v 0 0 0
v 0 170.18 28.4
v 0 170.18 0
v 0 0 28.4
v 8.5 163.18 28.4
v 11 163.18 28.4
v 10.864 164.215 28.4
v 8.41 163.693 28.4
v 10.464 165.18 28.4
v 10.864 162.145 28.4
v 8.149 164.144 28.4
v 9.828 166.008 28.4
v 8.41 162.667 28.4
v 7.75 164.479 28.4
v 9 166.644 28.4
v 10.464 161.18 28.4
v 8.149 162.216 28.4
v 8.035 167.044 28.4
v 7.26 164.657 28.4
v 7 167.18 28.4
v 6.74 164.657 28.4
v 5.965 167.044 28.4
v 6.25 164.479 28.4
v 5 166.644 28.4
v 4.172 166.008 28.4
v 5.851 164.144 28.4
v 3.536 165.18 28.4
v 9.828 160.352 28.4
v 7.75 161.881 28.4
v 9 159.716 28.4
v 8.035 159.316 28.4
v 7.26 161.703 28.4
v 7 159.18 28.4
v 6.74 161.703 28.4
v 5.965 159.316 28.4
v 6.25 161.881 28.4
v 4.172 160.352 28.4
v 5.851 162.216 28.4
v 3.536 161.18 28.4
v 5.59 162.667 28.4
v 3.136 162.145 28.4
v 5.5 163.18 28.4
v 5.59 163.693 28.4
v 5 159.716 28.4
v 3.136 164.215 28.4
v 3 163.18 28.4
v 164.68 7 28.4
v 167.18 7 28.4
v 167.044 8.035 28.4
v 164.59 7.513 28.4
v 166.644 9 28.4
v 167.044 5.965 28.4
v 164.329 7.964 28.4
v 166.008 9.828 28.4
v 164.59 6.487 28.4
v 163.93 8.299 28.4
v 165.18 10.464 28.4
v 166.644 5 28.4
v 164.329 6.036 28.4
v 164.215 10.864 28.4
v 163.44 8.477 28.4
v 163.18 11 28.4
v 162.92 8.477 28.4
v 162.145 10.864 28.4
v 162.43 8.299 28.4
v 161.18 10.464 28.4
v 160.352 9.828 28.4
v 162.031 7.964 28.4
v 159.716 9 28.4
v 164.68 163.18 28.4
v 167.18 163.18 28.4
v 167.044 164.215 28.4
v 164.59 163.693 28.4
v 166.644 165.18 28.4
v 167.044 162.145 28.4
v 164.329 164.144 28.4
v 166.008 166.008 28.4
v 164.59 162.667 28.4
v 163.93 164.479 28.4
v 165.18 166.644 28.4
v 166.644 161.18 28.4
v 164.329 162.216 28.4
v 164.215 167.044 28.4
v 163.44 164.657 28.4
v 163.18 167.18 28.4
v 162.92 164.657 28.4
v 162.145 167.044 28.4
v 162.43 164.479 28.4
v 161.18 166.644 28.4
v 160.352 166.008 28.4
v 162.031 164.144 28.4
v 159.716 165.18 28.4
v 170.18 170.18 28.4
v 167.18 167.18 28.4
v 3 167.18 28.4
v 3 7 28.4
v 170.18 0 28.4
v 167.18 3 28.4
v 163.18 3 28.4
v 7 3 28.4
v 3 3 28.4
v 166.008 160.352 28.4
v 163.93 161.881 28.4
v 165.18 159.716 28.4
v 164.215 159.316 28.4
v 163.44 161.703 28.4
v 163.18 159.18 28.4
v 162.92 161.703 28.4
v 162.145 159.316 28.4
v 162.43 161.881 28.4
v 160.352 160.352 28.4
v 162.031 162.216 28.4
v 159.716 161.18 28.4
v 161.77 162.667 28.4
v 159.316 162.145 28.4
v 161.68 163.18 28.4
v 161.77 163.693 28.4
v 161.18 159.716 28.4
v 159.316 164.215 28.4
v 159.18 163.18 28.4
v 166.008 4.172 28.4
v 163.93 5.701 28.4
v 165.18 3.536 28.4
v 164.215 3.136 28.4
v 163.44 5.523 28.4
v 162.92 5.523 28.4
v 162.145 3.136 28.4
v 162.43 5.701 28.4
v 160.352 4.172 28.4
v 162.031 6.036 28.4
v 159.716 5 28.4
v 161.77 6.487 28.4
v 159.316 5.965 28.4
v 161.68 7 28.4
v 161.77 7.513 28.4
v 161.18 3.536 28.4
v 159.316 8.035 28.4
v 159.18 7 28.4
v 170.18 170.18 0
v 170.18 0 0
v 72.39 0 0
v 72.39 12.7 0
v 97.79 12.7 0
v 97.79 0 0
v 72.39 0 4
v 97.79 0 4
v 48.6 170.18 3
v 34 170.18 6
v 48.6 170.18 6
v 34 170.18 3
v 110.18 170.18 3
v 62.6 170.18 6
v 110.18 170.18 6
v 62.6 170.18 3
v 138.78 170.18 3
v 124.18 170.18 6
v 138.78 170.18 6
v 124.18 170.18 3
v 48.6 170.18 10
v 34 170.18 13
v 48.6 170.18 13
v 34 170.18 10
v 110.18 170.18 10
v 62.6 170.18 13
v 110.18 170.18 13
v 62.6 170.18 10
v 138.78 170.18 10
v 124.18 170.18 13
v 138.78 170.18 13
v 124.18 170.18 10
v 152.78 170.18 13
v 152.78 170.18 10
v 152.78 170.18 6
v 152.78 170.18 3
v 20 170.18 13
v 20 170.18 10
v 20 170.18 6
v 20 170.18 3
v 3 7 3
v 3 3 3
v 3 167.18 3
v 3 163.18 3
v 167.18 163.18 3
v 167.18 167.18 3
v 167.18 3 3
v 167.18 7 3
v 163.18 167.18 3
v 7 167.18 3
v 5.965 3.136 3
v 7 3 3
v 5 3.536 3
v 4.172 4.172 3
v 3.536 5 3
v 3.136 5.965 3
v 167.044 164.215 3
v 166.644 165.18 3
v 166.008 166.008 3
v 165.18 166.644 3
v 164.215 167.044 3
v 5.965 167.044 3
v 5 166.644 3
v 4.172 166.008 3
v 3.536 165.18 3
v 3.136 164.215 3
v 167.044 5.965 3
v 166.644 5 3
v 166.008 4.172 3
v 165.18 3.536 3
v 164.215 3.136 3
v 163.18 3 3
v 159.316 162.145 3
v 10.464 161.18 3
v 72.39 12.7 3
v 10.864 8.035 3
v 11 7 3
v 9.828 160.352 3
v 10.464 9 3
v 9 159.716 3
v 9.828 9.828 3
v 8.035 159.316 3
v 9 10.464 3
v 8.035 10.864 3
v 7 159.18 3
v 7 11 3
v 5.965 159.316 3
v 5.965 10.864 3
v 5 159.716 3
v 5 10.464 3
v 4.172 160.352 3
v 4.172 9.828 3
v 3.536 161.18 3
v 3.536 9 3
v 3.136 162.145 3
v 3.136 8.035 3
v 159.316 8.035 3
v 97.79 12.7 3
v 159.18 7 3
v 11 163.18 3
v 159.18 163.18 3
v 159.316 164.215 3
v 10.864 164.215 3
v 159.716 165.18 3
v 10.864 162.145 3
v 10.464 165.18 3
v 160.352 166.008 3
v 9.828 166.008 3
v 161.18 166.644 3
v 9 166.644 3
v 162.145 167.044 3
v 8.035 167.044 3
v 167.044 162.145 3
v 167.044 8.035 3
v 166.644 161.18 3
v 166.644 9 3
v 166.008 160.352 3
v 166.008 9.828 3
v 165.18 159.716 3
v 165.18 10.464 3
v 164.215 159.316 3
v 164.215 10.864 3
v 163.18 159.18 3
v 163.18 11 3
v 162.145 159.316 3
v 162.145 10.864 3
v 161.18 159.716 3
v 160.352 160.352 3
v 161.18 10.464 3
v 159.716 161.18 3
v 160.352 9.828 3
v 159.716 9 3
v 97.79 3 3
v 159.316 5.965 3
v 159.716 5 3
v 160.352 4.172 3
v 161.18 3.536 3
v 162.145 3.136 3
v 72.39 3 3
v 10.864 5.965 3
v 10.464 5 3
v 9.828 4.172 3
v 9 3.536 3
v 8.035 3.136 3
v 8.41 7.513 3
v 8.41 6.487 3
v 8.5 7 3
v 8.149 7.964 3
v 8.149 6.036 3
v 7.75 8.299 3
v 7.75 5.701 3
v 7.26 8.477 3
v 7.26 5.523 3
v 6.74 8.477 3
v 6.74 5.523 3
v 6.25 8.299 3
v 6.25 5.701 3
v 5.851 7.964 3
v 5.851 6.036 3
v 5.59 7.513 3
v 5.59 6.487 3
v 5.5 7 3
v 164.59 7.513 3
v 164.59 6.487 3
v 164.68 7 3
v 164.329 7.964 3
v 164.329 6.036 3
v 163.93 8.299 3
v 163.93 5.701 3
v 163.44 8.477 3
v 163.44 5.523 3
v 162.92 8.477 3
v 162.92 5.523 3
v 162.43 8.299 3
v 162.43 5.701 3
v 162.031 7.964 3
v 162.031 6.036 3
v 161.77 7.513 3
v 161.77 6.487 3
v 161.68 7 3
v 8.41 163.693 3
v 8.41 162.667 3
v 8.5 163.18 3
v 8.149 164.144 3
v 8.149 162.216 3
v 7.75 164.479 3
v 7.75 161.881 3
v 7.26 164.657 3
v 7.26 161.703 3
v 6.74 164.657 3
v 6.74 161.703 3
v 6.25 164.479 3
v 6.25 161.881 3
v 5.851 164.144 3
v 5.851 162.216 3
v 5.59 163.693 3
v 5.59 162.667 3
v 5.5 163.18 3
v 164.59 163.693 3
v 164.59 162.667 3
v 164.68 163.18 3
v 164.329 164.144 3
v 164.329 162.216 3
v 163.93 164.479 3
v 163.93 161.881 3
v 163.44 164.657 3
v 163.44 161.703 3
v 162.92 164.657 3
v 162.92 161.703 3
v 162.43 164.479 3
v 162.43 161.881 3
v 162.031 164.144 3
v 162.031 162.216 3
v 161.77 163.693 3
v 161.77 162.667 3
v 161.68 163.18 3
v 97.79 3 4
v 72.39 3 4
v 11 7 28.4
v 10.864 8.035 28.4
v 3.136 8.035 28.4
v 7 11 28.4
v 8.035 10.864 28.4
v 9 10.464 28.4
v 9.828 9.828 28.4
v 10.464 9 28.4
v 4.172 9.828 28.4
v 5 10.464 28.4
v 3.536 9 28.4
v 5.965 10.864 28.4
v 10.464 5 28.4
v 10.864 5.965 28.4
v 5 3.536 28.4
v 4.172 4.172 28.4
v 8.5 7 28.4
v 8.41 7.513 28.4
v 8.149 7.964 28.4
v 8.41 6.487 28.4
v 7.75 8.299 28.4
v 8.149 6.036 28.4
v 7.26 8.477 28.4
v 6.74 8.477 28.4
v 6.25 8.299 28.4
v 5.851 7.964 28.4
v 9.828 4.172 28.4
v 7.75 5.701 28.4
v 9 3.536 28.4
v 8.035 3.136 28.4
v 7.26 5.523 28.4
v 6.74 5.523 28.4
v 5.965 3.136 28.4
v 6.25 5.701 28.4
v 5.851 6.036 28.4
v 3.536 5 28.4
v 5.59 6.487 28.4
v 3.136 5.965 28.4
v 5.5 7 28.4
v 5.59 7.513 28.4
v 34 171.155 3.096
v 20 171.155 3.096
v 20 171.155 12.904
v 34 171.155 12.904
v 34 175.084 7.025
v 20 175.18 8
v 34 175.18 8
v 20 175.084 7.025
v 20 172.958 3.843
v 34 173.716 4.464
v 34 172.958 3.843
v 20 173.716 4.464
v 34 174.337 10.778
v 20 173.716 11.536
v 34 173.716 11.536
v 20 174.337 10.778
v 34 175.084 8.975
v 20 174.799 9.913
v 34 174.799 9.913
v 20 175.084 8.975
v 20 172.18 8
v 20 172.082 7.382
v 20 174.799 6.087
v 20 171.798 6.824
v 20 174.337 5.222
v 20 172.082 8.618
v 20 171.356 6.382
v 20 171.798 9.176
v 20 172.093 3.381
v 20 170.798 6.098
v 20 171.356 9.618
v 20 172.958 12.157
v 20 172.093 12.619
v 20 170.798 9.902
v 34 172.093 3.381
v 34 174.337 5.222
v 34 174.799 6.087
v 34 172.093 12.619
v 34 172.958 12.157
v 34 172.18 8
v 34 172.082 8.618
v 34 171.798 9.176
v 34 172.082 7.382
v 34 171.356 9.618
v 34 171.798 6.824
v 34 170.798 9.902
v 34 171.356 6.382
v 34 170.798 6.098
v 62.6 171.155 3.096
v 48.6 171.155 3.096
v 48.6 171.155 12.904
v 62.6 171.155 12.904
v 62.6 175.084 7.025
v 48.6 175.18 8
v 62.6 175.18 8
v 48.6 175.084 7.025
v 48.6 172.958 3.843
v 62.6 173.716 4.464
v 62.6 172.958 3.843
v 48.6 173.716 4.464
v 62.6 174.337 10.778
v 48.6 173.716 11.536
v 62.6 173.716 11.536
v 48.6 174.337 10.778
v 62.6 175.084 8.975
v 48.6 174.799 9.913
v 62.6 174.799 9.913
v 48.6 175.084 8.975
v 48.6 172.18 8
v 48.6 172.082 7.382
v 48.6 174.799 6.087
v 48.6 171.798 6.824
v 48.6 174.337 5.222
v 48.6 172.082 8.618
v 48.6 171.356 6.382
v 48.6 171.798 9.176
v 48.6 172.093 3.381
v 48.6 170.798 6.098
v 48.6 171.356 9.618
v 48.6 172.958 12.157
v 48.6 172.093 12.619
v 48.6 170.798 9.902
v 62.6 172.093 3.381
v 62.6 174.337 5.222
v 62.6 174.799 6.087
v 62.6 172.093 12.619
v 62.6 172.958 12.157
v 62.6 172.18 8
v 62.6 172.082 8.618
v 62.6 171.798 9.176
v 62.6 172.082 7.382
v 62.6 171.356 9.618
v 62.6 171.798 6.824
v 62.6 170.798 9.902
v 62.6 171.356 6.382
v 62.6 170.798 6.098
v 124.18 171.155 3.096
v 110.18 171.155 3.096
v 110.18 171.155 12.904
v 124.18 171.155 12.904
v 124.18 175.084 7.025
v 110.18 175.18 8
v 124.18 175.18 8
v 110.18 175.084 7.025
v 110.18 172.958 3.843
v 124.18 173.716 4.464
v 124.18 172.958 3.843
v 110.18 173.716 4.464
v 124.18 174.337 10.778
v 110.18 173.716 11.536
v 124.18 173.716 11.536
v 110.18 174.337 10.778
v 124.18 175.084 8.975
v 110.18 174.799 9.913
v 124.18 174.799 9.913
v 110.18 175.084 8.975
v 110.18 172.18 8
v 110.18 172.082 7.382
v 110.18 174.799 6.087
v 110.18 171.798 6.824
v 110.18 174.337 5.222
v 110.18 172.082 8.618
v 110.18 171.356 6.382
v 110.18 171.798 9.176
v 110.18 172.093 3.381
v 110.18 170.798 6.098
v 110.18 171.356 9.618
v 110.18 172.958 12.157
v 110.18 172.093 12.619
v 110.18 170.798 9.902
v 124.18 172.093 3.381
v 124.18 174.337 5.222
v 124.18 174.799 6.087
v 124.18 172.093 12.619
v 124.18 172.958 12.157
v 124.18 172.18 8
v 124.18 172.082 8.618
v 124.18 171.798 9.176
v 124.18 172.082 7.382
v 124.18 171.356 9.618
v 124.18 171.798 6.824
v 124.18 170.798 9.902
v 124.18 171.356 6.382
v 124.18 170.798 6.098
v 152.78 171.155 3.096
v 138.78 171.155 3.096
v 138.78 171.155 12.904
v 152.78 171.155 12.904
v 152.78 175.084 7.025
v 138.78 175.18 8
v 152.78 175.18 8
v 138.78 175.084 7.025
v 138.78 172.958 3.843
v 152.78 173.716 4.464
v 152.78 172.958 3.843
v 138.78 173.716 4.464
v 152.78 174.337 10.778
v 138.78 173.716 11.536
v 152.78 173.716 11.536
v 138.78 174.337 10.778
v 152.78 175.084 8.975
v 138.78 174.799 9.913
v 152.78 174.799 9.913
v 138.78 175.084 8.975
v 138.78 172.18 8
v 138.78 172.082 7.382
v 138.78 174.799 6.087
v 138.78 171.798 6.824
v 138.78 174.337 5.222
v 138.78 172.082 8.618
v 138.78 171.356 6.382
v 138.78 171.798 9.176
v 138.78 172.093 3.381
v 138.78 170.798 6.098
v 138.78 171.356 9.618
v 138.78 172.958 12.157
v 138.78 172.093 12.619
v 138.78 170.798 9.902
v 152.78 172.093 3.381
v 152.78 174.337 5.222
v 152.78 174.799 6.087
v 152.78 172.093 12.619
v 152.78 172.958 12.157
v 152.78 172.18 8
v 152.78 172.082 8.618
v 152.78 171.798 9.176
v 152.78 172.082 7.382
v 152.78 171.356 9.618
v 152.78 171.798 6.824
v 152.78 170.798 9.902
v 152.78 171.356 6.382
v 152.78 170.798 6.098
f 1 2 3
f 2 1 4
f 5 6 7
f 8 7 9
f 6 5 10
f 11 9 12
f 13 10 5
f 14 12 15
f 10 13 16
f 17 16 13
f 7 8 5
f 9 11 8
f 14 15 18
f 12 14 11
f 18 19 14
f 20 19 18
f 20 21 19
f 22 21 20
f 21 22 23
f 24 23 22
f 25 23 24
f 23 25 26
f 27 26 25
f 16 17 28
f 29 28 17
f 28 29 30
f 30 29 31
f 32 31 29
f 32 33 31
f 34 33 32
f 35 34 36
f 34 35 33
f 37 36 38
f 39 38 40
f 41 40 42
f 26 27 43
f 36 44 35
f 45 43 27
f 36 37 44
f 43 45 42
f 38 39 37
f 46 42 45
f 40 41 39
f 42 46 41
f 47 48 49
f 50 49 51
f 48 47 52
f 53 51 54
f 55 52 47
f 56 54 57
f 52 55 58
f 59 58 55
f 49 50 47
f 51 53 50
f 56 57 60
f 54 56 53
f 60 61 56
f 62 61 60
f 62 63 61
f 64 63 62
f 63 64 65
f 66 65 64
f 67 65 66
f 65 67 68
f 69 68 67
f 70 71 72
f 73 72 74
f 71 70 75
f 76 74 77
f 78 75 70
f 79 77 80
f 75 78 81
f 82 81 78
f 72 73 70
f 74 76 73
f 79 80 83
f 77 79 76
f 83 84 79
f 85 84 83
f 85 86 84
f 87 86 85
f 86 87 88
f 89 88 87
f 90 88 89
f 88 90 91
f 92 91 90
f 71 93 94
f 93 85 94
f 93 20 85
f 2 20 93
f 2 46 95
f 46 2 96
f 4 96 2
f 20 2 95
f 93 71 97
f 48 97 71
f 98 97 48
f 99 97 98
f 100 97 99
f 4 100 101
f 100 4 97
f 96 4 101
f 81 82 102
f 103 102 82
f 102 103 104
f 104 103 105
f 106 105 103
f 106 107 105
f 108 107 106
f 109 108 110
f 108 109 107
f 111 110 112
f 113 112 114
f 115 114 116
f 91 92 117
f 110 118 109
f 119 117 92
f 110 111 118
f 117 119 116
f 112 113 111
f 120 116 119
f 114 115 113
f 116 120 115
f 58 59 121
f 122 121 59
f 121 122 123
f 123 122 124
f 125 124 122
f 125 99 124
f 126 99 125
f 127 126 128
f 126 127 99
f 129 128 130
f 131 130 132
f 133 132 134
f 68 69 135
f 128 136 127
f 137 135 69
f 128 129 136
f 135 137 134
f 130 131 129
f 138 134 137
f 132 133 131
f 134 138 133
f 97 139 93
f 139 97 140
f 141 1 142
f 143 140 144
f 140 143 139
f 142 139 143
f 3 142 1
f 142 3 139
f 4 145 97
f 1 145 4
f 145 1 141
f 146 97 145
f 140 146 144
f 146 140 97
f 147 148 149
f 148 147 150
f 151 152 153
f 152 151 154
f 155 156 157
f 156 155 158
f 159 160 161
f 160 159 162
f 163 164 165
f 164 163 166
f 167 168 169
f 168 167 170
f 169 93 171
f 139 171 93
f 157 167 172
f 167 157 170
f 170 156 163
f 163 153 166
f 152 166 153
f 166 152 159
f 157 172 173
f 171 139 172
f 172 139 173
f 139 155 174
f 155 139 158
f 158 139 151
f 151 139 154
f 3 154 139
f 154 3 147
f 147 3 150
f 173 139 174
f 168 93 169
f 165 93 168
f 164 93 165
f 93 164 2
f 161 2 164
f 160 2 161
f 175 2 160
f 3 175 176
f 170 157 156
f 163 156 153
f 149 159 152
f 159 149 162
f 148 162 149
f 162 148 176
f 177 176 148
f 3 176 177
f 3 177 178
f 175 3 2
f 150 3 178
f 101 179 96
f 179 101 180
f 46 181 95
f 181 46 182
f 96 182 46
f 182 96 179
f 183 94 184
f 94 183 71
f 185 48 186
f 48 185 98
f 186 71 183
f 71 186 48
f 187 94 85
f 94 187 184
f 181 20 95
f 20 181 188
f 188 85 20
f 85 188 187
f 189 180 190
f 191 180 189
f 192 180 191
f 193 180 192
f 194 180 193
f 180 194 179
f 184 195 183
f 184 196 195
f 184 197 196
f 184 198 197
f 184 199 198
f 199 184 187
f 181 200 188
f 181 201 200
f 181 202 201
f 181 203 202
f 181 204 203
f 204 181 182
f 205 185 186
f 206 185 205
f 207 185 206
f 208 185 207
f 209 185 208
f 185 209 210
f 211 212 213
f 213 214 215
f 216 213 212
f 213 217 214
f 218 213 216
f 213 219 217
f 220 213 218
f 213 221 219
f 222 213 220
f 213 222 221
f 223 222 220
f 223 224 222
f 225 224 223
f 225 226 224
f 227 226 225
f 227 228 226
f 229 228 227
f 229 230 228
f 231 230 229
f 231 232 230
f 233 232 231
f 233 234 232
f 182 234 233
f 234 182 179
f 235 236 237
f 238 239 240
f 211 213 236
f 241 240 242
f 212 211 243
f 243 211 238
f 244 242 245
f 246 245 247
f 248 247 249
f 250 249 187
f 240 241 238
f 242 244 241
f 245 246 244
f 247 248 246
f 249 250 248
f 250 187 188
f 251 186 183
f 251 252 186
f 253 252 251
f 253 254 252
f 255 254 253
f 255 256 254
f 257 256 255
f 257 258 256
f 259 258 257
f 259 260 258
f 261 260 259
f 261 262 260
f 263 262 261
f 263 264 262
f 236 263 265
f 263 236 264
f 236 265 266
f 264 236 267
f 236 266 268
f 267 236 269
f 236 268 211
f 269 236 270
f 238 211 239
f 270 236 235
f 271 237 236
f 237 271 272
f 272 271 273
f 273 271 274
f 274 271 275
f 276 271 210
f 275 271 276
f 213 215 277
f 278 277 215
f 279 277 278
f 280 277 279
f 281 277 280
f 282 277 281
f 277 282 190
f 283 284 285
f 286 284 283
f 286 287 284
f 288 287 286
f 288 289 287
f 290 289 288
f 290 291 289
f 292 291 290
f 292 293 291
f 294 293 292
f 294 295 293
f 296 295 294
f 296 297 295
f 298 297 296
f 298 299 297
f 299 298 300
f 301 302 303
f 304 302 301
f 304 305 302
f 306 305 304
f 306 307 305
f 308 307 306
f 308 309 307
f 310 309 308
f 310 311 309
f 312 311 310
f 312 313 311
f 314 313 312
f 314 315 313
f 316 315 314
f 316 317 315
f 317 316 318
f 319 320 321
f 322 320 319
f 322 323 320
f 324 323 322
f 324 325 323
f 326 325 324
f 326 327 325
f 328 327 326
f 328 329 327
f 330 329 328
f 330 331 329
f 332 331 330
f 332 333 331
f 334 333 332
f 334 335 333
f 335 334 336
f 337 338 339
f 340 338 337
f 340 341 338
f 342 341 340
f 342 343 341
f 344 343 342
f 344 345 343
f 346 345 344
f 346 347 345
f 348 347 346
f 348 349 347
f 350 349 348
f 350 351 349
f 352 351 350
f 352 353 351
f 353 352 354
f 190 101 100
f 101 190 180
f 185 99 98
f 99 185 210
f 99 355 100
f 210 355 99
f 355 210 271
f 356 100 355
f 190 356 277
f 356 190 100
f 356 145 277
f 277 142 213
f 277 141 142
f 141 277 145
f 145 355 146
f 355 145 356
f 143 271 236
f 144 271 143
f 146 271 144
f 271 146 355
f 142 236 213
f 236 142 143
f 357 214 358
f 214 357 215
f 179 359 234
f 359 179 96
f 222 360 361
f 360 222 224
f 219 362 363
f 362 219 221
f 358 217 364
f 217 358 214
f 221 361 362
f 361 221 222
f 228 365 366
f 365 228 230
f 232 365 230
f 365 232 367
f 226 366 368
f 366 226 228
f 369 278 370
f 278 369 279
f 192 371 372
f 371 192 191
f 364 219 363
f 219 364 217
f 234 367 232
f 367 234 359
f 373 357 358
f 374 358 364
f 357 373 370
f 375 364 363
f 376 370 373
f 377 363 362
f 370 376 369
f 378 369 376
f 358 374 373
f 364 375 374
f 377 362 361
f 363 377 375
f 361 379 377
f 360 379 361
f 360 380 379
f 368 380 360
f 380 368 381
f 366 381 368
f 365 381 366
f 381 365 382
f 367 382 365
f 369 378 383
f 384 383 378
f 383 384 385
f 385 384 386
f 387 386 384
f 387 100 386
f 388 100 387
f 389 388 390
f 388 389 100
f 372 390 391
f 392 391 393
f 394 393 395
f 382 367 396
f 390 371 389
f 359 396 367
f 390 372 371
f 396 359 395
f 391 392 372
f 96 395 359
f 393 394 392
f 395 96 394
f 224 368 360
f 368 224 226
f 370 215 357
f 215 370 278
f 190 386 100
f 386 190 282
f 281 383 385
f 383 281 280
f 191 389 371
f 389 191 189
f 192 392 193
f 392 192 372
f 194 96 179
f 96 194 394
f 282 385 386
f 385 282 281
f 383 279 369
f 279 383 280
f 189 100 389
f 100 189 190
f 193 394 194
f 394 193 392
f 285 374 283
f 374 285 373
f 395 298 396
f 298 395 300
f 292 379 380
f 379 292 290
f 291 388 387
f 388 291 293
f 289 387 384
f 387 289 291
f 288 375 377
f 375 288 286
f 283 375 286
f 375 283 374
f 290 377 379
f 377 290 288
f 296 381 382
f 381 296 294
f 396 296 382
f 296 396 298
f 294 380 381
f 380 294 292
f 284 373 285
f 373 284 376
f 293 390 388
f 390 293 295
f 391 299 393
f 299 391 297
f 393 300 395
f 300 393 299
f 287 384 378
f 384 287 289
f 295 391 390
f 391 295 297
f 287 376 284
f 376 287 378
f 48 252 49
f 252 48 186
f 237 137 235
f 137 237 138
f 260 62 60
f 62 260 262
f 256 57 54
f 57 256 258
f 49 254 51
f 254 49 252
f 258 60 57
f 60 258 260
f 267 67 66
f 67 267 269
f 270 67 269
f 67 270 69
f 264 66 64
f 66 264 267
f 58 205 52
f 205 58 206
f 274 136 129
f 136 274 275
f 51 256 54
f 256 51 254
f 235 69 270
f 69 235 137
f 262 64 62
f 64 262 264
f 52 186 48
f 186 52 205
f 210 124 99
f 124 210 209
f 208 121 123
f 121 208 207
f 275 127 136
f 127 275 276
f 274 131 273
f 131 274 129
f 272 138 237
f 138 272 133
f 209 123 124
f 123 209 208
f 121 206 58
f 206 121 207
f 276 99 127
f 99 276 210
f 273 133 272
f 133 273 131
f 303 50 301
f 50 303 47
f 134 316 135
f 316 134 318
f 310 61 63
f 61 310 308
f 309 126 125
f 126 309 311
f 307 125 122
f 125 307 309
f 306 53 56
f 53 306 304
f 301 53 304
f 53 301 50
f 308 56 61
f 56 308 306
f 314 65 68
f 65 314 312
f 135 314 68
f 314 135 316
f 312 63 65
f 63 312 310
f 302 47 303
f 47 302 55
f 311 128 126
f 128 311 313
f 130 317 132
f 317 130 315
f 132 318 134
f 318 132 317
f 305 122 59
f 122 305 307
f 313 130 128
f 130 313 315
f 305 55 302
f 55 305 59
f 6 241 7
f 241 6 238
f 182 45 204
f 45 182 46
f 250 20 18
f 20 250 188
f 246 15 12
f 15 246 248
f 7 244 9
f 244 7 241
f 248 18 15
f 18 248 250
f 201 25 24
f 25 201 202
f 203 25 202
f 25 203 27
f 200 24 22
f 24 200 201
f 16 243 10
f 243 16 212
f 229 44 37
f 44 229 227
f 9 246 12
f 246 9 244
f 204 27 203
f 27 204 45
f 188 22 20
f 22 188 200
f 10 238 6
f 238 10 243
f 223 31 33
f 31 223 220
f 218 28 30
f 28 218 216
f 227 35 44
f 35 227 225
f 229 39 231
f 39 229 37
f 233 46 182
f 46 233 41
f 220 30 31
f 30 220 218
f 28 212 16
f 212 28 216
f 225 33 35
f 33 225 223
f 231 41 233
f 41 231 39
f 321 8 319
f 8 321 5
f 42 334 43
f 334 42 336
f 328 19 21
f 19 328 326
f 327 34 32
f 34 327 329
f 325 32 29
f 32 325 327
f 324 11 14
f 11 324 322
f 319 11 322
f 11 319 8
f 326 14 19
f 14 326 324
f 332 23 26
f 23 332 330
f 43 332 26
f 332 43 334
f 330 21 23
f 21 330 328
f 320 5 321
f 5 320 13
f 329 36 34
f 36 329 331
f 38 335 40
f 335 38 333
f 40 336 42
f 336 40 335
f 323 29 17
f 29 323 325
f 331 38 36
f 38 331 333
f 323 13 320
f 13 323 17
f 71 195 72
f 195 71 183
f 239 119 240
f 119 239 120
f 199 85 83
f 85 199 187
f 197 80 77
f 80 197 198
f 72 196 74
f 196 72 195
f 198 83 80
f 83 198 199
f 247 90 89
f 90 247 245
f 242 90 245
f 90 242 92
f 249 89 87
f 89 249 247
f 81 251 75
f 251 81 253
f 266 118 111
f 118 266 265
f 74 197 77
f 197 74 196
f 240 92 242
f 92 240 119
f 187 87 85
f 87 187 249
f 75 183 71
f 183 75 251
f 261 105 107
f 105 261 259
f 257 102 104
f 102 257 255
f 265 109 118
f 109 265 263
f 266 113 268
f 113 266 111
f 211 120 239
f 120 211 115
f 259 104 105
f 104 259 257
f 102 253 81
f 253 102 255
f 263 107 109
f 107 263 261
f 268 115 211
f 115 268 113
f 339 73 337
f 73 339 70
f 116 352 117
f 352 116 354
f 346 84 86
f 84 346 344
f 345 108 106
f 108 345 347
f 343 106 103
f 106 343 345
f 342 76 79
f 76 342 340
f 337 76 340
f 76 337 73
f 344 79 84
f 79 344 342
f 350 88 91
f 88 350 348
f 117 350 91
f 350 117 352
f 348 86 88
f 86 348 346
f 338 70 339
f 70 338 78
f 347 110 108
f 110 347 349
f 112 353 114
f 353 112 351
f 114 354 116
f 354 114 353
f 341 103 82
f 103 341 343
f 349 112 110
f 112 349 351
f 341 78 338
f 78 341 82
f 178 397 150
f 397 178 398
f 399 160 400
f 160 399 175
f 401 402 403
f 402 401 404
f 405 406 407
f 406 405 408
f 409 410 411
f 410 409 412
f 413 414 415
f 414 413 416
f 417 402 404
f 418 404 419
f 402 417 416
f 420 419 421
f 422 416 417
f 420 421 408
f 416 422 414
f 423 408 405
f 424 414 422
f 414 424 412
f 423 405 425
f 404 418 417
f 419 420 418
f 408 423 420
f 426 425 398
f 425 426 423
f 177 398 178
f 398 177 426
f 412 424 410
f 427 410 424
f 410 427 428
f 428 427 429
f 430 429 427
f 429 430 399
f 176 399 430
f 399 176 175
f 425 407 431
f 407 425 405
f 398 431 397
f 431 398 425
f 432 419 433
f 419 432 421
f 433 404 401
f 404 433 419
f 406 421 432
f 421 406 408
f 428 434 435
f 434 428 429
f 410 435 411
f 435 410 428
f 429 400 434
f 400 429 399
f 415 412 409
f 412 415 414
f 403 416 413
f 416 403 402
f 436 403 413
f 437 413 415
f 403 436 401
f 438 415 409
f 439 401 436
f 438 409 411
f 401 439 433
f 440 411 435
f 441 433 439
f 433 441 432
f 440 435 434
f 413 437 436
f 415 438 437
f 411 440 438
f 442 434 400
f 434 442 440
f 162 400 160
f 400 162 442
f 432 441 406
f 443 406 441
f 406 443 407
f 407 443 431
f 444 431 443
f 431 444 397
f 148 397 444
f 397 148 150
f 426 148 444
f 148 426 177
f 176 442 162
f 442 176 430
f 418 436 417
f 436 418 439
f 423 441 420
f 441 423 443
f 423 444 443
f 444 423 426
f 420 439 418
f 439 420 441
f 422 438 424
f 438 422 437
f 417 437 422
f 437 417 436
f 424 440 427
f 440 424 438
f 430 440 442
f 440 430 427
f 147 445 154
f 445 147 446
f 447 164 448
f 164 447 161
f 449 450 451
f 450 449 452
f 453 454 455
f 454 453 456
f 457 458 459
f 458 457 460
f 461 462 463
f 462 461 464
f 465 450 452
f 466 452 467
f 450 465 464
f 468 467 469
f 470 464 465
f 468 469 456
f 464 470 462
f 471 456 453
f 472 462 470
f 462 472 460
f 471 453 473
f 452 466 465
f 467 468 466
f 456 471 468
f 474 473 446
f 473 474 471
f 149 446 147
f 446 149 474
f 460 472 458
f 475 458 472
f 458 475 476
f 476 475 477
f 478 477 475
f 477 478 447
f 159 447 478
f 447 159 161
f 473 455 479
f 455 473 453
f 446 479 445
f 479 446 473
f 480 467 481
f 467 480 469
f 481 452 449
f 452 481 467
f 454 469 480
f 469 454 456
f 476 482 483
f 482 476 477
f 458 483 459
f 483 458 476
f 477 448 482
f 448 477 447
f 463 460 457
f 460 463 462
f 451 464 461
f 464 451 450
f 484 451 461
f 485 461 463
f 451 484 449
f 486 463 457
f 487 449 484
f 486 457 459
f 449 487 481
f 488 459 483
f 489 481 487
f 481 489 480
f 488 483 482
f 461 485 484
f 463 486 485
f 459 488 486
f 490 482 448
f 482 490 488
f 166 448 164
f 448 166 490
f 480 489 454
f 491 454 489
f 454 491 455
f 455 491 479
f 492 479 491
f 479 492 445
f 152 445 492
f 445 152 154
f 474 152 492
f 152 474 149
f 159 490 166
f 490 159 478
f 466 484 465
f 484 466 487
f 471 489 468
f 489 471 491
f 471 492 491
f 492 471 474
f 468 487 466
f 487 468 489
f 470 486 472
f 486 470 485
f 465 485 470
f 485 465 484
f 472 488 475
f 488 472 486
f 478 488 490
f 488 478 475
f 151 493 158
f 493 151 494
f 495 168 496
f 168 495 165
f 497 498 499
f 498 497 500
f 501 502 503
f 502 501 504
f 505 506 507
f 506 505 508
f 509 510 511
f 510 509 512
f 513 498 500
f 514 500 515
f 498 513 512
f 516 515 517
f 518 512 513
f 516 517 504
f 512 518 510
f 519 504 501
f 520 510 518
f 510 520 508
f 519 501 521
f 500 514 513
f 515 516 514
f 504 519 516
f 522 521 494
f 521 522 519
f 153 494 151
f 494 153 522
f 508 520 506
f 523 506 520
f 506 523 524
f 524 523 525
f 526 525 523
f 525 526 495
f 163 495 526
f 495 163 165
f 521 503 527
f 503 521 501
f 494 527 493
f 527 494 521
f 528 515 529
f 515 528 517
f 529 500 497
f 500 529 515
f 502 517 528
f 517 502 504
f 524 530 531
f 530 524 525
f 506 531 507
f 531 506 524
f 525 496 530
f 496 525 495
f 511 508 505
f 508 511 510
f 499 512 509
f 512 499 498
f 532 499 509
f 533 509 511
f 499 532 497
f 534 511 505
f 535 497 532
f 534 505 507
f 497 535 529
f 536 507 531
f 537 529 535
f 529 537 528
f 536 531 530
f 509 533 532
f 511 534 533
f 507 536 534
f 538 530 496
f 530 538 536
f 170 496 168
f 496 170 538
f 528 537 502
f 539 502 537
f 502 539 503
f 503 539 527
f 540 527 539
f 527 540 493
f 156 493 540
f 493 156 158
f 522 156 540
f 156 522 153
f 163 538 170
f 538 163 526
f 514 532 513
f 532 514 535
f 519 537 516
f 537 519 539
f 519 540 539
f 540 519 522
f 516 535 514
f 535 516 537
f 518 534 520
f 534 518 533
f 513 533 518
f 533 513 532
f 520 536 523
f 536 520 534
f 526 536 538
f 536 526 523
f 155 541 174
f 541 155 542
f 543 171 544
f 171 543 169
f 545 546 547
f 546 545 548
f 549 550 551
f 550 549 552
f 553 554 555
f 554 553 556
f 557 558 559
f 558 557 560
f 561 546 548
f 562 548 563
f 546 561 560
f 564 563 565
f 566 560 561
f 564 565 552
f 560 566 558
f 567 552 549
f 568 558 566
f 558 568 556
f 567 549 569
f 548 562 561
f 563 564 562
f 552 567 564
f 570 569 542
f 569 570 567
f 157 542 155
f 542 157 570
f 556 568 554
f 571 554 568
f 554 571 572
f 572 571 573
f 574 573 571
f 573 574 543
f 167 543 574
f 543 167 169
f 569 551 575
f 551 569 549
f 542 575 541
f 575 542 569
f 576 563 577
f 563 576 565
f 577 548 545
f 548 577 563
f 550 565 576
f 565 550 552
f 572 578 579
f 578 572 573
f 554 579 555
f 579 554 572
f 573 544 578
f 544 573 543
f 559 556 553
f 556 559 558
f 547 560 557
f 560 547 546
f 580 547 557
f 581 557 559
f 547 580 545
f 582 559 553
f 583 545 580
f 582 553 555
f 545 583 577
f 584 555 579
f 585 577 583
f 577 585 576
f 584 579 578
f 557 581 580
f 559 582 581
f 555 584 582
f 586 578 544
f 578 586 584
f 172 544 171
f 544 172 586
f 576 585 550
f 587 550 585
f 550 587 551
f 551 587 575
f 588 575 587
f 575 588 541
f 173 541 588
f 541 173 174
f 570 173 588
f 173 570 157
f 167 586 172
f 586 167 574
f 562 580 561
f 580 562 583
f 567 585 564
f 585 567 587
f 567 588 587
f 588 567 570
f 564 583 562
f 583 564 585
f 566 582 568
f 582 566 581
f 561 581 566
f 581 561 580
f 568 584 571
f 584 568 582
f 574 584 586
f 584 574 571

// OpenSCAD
// ============================================================
// PhoneLock - Component Tray (Acts as the main box lid)
// All dimensions in mm. Inches converted at 25.4mm = 1 inch.
// ============================================================

// --- Parameters ---
wall       = 3;
in2mm      = 25.4;

// Outer footprint
outer_w    = 6.7  * in2mm;   // 175.26 mm  (X)
outer_d    = 6.7  * in2mm;   // 175.26 mm  (Y)
inner_h    = 1.0  * in2mm;   //  50.80 mm  (Z) - interior height
outer_h    = inner_h + wall; //  53.80 mm  total tray height

// Servo slot in floor
slot_w     = 1.0  * in2mm;   //  25.40 mm
slot_d     = 0.5  * in2mm;   //  12.70 mm

// Hinge parameters
hinge_r         = 5;          // knuckle outer radius (mm)
hinge_pin_r     = 2;          // pin hole radius (mm)
hinge_knuckle_h = 14;         // height of each individual knuckle segment
hinge_gap       = 0.3;        // clearance between knuckles for printing
hinge_inset     = 20;         // how far from each corner the hinges sit

// Screw boss parameters (for flat lid attachment later)
boss_r     = 4;               // outer radius of corner screw boss
boss_h     = inner_h;         // full interior height
screw_r    = 1.5;             // M3 screw hole

// ============================================================
// MODULE: Single knuckle segment
// ============================================================
module knuckle(h) {
    difference() {
        cylinder(r = hinge_r, h = h, $fn = 32);
        cylinder(r = hinge_pin_r, h = h + 1, $fn = 20);
    }
}

// ============================================================
// MODULE: Full hinge strip (3 knuckles)
// Tray owns knuckles 1 & 3
// Main box will own knuckle 2 (middle)
// ============================================================
module hinge_strip() {
    // Knuckle 1 (tray — first)
    translate([0, 0, 0])
        knuckle(hinge_knuckle_h);

    // Knuckle 2 gap (reserved for main box knuckle)

    // Knuckle 3 (tray — second)
    translate([0, 0, hinge_knuckle_h + hinge_gap + hinge_knuckle_h + hinge_gap])
        knuckle(hinge_knuckle_h);
}

// ============================================================
// MODULE: Corner screw bosses (4 corners, inside the tray)
// ============================================================
module screw_bosses() {
    offsets = [
        [wall + boss_r,           wall + boss_r          ],
        [outer_w - wall - boss_r, wall + boss_r          ],
        [wall + boss_r,           outer_d - wall - boss_r],
        [outer_w - wall - boss_r, outer_d - wall - boss_r]
    ];
    for (o = offsets) {
        translate([o[0], o[1], wall])
            difference() {
                cylinder(r = boss_r, h = boss_h, $fn = 24);
                translate([0, 0, -1])
                    cylinder(r = screw_r, h = boss_h + 2, $fn = 18);
            }
    }
}

// ============================================================
// MAIN: Component Tray
// ============================================================
module component_tray() {
    difference() {

        // --- Outer shell ---
        cube([outer_w, outer_d, outer_h]);

        // --- Hollow interior (open top) ---
        translate([wall, wall, wall])
            cube([
                outer_w - 2 * wall,
                outer_d - 2 * wall,
                outer_h
            ]);

        // --- Servo slot in floor ---
        translate([
            outer_w / 2 - slot_w / 2,
            0,
            -1
        ])
            cube([slot_w, slot_d, wall + 2]);

    }

    // --- Screw bosses for flat lid ---
    screw_bosses();

    // --- Knuckle hinges on back wall ---
    // --- Knuckle hinges on back wall (clipped flush with inner wall) ---
    difference() {
        union() {
            // Hinge 1
            translate([
                hinge_inset,
                outer_d,
                wall + hinge_r
            ])
                rotate([0, 90, 0])
                    hinge_strip();

            // Hinge 2
            translate([
                outer_w - hinge_inset - hinge_r * 8,
                outer_d,
                wall + hinge_r
            ])
                rotate([0, 90, 0])
                    hinge_strip();
        }

        // Clip anything that intrudes inside the box
        translate([0, 0, 0])
            cube([outer_w, outer_d - wall, outer_h + 10]);
    }
}

// ============================================================
// RENDER
// ============================================================
component_tray();
